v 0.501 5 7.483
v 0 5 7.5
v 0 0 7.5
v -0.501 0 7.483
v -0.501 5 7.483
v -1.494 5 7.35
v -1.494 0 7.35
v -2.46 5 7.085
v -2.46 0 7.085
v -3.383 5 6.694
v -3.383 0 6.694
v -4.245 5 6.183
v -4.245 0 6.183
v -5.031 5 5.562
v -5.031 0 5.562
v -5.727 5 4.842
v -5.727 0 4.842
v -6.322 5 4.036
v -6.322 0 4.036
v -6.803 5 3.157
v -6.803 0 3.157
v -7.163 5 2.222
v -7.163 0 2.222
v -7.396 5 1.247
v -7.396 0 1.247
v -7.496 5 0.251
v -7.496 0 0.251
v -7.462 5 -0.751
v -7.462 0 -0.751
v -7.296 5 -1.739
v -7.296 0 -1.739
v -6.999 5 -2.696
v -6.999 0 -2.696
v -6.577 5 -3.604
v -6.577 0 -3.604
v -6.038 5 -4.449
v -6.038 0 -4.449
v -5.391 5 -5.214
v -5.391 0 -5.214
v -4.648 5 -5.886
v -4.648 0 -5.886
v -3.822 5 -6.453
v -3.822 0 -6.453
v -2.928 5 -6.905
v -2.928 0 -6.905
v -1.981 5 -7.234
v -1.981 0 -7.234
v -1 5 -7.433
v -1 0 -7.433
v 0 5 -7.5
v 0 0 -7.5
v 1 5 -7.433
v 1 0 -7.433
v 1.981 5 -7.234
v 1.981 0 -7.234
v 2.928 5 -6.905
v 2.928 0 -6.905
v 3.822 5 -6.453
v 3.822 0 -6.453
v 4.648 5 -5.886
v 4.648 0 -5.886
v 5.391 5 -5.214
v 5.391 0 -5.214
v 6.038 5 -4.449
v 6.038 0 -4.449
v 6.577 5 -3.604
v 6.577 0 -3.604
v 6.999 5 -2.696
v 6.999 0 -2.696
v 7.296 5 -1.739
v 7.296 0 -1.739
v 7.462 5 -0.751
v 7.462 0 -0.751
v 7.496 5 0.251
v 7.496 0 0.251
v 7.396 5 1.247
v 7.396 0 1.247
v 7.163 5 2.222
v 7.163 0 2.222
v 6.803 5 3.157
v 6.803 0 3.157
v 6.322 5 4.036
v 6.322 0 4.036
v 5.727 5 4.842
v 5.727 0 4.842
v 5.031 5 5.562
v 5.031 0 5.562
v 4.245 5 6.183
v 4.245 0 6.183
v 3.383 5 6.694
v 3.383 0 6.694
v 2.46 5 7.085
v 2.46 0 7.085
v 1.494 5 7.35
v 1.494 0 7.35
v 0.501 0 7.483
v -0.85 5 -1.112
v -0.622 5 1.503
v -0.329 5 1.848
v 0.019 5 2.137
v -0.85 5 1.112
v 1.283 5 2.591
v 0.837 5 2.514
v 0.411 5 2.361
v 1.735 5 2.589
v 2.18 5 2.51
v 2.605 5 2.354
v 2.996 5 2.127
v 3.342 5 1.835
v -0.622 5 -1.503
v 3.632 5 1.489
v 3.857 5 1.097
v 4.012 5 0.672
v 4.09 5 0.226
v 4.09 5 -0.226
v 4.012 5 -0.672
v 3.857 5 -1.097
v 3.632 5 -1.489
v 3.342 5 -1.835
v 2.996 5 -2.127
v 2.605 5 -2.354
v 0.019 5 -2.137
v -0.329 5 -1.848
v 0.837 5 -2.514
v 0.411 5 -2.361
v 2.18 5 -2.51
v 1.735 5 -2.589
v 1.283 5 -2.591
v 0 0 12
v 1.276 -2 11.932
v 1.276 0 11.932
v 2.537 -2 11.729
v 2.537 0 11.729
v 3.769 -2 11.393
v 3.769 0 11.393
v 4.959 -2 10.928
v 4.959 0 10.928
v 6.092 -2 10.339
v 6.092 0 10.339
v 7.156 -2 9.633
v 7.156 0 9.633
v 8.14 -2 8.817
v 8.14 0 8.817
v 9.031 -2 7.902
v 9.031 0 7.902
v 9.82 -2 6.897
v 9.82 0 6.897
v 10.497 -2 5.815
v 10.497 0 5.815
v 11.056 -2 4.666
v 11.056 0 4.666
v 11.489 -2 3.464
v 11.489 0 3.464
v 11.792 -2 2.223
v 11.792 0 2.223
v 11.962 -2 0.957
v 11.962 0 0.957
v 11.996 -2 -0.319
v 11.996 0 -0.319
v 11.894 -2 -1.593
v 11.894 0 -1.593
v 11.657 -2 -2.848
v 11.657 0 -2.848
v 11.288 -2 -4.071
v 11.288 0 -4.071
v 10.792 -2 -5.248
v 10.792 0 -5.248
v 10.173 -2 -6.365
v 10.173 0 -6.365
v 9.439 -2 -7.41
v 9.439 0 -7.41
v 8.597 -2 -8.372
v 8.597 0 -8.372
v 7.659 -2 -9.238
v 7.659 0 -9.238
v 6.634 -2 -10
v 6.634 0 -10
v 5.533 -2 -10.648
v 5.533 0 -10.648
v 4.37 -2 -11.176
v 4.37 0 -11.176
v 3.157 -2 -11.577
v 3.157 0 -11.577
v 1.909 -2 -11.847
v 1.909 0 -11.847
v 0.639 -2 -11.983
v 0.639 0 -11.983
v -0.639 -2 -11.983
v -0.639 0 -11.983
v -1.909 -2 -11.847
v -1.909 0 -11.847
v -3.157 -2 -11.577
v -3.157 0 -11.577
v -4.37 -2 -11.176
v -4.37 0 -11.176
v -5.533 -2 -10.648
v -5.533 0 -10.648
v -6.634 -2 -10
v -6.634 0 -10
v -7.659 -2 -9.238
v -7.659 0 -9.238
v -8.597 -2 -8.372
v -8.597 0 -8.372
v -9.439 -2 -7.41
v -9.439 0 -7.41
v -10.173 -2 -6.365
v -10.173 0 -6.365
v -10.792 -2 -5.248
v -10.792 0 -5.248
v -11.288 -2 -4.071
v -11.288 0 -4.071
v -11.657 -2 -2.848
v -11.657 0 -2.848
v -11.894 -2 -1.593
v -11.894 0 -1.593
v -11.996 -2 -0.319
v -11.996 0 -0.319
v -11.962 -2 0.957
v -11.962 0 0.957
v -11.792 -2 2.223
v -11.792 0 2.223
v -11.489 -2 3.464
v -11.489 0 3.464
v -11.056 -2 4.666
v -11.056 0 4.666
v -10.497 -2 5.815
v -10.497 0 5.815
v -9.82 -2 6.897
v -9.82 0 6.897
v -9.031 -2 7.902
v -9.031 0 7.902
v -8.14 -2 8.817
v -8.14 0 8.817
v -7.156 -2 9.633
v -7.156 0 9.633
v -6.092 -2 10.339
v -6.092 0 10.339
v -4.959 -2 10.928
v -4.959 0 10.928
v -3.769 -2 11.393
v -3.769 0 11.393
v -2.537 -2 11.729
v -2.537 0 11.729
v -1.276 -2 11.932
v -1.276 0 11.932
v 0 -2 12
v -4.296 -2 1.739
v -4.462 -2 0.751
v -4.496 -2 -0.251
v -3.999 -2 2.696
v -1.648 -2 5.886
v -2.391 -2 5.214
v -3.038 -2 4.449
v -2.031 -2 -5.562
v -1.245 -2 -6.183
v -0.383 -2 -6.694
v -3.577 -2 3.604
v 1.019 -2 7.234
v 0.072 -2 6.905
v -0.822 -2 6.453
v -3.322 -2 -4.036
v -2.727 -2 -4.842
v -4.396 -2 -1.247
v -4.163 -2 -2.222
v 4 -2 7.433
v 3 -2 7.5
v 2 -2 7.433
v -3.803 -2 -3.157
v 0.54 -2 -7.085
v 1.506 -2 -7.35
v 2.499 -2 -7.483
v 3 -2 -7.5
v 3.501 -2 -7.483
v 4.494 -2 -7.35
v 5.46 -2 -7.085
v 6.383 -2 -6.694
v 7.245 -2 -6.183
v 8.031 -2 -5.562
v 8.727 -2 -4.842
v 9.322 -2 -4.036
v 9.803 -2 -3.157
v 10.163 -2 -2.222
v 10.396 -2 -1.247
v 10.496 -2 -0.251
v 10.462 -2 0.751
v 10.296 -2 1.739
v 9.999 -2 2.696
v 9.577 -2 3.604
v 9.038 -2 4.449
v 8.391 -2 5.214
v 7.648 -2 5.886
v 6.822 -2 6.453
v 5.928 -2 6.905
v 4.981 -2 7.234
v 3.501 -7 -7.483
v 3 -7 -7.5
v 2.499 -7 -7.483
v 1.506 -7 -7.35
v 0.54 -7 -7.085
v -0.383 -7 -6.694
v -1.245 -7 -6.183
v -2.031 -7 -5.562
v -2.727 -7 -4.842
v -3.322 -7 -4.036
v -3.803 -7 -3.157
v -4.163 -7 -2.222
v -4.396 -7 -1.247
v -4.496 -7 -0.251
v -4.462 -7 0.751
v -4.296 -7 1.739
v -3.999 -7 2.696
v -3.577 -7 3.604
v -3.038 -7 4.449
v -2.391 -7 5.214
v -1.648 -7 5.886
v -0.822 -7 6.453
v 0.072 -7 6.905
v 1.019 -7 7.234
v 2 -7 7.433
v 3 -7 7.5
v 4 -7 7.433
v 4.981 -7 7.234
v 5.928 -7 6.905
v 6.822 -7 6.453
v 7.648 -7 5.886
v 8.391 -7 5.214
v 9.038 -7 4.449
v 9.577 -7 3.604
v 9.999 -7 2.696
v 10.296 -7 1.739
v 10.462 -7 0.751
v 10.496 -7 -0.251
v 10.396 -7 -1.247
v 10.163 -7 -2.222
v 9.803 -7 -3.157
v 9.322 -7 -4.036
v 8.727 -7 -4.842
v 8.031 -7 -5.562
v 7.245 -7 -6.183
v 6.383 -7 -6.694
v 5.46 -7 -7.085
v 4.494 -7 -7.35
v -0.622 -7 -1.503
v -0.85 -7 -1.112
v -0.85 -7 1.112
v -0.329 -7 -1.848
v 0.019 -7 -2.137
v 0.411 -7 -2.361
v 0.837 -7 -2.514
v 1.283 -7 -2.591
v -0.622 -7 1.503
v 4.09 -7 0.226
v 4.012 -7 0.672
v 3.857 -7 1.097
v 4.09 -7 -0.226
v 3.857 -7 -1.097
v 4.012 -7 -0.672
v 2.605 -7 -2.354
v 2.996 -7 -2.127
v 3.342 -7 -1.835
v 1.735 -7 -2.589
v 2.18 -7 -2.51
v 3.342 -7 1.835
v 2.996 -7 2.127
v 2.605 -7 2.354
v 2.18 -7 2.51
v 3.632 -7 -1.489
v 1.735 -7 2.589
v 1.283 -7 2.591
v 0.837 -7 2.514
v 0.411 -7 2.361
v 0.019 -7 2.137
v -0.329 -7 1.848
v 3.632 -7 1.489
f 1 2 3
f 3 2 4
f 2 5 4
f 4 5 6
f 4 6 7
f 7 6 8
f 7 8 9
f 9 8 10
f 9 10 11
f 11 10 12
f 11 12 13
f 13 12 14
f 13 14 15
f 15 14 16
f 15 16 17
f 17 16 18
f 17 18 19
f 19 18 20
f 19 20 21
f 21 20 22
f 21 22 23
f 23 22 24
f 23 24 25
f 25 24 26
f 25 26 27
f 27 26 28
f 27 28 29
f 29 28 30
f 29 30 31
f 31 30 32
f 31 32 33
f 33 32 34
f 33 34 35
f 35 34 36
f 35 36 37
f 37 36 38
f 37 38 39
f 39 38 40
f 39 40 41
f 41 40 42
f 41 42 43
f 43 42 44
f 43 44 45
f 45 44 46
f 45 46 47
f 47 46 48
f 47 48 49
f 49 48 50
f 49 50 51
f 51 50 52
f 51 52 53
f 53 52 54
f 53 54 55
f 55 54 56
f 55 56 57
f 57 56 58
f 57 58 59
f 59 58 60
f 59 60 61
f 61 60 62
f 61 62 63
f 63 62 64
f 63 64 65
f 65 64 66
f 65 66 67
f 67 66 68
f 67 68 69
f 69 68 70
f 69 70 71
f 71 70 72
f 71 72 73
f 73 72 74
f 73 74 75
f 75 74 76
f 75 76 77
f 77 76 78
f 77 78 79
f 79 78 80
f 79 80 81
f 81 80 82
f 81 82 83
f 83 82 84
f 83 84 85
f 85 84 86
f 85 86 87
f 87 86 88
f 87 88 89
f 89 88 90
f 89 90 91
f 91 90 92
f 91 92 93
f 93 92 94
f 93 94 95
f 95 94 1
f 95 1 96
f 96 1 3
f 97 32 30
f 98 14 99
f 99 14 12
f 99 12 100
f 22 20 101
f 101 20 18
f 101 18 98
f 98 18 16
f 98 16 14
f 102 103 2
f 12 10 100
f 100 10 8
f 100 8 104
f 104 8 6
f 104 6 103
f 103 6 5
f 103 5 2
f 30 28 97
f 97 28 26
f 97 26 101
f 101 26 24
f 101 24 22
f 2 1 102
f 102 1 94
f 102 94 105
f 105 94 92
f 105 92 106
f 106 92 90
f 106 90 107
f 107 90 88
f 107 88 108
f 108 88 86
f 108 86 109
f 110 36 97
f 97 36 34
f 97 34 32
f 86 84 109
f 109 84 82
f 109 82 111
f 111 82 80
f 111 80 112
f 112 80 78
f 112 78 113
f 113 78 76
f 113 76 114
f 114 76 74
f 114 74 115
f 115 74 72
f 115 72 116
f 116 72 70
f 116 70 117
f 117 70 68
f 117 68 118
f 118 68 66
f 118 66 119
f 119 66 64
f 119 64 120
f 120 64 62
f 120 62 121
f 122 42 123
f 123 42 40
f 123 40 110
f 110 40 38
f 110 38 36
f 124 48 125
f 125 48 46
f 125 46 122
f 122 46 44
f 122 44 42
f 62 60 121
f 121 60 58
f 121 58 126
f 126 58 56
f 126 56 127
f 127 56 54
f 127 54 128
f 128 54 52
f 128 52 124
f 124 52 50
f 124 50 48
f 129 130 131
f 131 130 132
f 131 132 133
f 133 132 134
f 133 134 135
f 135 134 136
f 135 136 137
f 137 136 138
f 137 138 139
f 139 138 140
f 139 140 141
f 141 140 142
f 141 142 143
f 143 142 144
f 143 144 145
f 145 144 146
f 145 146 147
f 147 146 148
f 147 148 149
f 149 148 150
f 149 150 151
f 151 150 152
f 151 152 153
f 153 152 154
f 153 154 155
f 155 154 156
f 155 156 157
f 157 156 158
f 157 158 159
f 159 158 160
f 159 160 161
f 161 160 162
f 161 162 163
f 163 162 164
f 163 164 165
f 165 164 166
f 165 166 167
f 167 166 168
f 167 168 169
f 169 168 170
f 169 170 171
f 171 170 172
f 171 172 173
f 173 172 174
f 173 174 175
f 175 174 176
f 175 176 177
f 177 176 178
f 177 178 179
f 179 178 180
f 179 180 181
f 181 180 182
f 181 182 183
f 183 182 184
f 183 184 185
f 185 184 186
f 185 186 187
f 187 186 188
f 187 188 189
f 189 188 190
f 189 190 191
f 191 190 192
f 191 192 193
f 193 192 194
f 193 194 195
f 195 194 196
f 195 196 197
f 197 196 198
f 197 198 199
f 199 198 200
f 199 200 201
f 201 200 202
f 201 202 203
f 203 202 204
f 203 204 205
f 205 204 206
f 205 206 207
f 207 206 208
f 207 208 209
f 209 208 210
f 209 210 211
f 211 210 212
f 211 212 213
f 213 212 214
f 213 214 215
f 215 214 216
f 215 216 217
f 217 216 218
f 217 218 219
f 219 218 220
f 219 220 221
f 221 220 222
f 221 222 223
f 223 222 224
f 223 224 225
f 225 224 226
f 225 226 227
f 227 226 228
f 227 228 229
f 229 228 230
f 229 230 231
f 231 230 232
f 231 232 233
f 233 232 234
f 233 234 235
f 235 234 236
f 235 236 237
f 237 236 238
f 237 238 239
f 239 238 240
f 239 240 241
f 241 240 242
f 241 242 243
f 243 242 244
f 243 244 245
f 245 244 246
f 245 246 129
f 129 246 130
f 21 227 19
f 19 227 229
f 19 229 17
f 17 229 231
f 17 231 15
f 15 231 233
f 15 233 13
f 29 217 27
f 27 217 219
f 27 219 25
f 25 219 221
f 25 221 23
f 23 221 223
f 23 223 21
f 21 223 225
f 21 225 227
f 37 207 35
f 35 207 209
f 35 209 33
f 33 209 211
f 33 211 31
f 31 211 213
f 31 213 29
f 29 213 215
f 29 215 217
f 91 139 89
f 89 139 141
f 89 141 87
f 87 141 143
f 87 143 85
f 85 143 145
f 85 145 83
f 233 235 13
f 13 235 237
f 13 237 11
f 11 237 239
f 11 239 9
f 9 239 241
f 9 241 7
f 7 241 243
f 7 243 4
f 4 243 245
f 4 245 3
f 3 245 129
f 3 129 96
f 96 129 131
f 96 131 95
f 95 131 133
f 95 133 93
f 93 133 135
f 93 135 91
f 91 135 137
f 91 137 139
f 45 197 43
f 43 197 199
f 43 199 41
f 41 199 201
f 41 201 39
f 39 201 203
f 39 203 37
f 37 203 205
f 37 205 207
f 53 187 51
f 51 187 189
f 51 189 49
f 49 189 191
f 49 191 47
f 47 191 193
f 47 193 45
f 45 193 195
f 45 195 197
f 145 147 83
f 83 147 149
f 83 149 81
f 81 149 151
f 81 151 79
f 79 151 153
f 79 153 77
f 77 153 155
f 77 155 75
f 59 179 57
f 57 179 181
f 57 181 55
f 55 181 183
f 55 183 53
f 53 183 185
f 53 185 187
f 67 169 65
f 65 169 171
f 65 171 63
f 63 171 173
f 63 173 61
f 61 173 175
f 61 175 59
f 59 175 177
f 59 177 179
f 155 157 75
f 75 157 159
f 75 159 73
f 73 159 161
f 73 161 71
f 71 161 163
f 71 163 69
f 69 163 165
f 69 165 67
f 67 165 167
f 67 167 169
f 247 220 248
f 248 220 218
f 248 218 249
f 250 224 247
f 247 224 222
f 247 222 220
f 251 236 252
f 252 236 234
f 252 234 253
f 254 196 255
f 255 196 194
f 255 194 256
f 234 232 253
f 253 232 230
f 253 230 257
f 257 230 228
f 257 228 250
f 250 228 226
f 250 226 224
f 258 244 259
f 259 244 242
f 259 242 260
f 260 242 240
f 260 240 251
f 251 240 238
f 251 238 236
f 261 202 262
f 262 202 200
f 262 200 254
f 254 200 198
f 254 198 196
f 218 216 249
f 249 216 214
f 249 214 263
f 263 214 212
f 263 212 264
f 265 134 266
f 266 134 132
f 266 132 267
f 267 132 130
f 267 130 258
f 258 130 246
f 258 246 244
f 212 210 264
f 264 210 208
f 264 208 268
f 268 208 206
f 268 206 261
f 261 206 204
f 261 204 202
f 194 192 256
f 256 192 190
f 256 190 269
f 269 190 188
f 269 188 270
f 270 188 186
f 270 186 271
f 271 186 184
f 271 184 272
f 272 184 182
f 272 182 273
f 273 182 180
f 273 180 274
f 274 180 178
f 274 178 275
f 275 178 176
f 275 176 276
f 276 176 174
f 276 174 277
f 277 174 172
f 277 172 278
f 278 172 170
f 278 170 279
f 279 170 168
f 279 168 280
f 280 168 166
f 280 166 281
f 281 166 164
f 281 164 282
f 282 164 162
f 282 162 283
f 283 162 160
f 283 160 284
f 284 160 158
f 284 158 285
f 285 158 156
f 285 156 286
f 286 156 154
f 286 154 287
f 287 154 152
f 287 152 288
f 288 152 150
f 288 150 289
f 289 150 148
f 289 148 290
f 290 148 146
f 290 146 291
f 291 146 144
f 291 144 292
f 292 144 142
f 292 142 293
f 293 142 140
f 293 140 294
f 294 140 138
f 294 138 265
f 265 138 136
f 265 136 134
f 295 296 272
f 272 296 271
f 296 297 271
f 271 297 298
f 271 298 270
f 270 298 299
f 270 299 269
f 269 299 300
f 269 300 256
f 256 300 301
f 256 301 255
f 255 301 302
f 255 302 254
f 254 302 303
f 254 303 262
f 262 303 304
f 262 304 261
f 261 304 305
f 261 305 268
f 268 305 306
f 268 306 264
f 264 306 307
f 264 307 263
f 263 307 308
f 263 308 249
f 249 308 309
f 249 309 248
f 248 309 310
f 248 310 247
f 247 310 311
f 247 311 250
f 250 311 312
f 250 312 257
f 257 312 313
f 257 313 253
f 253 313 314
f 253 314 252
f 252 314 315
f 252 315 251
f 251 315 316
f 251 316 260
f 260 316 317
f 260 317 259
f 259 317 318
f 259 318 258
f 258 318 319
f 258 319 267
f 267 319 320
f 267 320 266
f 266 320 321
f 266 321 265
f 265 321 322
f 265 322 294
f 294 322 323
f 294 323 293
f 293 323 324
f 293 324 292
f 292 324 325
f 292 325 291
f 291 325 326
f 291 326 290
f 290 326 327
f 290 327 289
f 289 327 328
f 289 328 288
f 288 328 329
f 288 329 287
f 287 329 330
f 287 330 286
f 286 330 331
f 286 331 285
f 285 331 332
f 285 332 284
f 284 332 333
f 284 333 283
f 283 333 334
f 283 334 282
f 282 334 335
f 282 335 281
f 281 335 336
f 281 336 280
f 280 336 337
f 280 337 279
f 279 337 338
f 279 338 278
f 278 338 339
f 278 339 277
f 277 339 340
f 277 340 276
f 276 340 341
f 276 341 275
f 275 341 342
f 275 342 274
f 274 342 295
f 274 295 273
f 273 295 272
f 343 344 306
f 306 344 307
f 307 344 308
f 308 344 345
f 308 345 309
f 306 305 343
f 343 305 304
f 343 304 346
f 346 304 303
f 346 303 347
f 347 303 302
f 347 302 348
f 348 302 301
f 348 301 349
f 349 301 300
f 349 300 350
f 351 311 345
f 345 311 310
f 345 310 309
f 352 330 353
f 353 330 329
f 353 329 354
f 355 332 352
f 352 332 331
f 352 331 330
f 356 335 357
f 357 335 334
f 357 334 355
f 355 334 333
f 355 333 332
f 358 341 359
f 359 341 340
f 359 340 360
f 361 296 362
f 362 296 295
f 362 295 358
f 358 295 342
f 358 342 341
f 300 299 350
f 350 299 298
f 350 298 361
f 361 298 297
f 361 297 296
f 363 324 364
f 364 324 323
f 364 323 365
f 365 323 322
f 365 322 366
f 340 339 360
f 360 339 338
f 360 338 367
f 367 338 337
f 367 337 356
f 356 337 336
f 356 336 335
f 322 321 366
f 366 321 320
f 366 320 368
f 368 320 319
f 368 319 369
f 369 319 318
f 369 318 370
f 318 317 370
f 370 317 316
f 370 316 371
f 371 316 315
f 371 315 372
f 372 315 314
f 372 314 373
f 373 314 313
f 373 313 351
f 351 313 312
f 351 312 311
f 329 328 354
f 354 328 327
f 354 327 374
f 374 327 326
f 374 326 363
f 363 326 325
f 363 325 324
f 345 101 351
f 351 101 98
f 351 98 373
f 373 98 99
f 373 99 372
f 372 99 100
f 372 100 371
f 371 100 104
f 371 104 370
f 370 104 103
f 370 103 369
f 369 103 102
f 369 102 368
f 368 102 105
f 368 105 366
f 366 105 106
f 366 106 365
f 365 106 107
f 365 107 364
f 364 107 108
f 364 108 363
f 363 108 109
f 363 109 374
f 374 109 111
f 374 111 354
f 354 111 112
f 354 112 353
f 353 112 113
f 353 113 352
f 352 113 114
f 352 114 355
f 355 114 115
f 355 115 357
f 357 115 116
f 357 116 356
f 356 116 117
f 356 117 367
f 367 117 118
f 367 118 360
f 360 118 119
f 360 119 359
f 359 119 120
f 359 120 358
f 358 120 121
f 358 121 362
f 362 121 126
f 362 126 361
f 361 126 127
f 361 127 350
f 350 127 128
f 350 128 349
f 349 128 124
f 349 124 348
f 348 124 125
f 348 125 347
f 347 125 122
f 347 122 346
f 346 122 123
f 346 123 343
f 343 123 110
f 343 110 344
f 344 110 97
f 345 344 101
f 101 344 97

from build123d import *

# Parameters (mm, degrees)
SKETCH2_R           = 7.5
BOSS_EXTRUDE1_DEPTH = 5
SKETCH2_3_R         = 12
SKETCH2_3_R_2       = 7.5
BOSS_EXTRUDE2_DEPTH = 2
BOSS_EXTRUDE4_START = -2
SKETCH2_5_R         = 7.5
BOSS_EXTRUDE4_DEPTH = 2
SKETCH4_R           = 7.5
BOSS_EXTRUDE5_DEPTH = 5
CUT_EXTRUDE1_DEPTH  = 21.784609691


with BuildPart() as part:
    # Sketch2 → Boss-Extrude1 (new body)
    with BuildSketch(Plane(origin=(0, 0, 0), x_dir=(1, 0, 0), z_dir=(0, 1, 0))):
        Circle(SKETCH2_R)
    extrude(amount=BOSS_EXTRUDE1_DEPTH)



with BuildPart() as body_2:
    # Sketch2<3> → Boss-Extrude2 (new body)
    with BuildSketch(Plane(origin=(0, 0, 0), x_dir=(1, 0, 0), z_dir=(0, 1, 0))):
        Circle(SKETCH2_3_R)
        Circle(SKETCH2_3_R_2, mode=Mode.SUBTRACT)
    extrude(amount=-BOSS_EXTRUDE2_DEPTH)


with BuildPart() as part_1:
    add(part.part)

    add(body_2.part)  # Boss-Extrude4 merges body 2
    # Sketch2<5> → Boss-Extrude4 (add)
    with BuildSketch(Plane(origin=(0, 0, 0), x_dir=(1, 0, 0), z_dir=(0, 1, 0)).offset(BOSS_EXTRUDE4_START)):
        Circle(SKETCH2_5_R)
    extrude(amount=BOSS_EXTRUDE4_DEPTH)

    # Sketch4 → Boss-Extrude5 (add)
    with BuildSketch(Plane.XZ.offset(2)):
        with Locations((3, 0)):
            Circle(SKETCH4_R)
    extrude(amount=BOSS_EXTRUDE5_DEPTH)

    # Sketch6 → Cut-Extrude1 (cut, through all)
    with BuildSketch(Plane(origin=(0, 5, 0), x_dir=(1, 0, 0), z_dir=(0, 1, 0))):
        with BuildLine():
            Line((-0.85, -1.112429773), (-0.85, 1.112429773))
            ThreePointArc((-0.85, 1.112429773), (4.1, 0), (-0.85, -1.112429773))
        make_face()
    extrude(amount=-CUT_EXTRUDE1_DEPTH, mode=Mode.SUBTRACT)


solid = part_1.part
